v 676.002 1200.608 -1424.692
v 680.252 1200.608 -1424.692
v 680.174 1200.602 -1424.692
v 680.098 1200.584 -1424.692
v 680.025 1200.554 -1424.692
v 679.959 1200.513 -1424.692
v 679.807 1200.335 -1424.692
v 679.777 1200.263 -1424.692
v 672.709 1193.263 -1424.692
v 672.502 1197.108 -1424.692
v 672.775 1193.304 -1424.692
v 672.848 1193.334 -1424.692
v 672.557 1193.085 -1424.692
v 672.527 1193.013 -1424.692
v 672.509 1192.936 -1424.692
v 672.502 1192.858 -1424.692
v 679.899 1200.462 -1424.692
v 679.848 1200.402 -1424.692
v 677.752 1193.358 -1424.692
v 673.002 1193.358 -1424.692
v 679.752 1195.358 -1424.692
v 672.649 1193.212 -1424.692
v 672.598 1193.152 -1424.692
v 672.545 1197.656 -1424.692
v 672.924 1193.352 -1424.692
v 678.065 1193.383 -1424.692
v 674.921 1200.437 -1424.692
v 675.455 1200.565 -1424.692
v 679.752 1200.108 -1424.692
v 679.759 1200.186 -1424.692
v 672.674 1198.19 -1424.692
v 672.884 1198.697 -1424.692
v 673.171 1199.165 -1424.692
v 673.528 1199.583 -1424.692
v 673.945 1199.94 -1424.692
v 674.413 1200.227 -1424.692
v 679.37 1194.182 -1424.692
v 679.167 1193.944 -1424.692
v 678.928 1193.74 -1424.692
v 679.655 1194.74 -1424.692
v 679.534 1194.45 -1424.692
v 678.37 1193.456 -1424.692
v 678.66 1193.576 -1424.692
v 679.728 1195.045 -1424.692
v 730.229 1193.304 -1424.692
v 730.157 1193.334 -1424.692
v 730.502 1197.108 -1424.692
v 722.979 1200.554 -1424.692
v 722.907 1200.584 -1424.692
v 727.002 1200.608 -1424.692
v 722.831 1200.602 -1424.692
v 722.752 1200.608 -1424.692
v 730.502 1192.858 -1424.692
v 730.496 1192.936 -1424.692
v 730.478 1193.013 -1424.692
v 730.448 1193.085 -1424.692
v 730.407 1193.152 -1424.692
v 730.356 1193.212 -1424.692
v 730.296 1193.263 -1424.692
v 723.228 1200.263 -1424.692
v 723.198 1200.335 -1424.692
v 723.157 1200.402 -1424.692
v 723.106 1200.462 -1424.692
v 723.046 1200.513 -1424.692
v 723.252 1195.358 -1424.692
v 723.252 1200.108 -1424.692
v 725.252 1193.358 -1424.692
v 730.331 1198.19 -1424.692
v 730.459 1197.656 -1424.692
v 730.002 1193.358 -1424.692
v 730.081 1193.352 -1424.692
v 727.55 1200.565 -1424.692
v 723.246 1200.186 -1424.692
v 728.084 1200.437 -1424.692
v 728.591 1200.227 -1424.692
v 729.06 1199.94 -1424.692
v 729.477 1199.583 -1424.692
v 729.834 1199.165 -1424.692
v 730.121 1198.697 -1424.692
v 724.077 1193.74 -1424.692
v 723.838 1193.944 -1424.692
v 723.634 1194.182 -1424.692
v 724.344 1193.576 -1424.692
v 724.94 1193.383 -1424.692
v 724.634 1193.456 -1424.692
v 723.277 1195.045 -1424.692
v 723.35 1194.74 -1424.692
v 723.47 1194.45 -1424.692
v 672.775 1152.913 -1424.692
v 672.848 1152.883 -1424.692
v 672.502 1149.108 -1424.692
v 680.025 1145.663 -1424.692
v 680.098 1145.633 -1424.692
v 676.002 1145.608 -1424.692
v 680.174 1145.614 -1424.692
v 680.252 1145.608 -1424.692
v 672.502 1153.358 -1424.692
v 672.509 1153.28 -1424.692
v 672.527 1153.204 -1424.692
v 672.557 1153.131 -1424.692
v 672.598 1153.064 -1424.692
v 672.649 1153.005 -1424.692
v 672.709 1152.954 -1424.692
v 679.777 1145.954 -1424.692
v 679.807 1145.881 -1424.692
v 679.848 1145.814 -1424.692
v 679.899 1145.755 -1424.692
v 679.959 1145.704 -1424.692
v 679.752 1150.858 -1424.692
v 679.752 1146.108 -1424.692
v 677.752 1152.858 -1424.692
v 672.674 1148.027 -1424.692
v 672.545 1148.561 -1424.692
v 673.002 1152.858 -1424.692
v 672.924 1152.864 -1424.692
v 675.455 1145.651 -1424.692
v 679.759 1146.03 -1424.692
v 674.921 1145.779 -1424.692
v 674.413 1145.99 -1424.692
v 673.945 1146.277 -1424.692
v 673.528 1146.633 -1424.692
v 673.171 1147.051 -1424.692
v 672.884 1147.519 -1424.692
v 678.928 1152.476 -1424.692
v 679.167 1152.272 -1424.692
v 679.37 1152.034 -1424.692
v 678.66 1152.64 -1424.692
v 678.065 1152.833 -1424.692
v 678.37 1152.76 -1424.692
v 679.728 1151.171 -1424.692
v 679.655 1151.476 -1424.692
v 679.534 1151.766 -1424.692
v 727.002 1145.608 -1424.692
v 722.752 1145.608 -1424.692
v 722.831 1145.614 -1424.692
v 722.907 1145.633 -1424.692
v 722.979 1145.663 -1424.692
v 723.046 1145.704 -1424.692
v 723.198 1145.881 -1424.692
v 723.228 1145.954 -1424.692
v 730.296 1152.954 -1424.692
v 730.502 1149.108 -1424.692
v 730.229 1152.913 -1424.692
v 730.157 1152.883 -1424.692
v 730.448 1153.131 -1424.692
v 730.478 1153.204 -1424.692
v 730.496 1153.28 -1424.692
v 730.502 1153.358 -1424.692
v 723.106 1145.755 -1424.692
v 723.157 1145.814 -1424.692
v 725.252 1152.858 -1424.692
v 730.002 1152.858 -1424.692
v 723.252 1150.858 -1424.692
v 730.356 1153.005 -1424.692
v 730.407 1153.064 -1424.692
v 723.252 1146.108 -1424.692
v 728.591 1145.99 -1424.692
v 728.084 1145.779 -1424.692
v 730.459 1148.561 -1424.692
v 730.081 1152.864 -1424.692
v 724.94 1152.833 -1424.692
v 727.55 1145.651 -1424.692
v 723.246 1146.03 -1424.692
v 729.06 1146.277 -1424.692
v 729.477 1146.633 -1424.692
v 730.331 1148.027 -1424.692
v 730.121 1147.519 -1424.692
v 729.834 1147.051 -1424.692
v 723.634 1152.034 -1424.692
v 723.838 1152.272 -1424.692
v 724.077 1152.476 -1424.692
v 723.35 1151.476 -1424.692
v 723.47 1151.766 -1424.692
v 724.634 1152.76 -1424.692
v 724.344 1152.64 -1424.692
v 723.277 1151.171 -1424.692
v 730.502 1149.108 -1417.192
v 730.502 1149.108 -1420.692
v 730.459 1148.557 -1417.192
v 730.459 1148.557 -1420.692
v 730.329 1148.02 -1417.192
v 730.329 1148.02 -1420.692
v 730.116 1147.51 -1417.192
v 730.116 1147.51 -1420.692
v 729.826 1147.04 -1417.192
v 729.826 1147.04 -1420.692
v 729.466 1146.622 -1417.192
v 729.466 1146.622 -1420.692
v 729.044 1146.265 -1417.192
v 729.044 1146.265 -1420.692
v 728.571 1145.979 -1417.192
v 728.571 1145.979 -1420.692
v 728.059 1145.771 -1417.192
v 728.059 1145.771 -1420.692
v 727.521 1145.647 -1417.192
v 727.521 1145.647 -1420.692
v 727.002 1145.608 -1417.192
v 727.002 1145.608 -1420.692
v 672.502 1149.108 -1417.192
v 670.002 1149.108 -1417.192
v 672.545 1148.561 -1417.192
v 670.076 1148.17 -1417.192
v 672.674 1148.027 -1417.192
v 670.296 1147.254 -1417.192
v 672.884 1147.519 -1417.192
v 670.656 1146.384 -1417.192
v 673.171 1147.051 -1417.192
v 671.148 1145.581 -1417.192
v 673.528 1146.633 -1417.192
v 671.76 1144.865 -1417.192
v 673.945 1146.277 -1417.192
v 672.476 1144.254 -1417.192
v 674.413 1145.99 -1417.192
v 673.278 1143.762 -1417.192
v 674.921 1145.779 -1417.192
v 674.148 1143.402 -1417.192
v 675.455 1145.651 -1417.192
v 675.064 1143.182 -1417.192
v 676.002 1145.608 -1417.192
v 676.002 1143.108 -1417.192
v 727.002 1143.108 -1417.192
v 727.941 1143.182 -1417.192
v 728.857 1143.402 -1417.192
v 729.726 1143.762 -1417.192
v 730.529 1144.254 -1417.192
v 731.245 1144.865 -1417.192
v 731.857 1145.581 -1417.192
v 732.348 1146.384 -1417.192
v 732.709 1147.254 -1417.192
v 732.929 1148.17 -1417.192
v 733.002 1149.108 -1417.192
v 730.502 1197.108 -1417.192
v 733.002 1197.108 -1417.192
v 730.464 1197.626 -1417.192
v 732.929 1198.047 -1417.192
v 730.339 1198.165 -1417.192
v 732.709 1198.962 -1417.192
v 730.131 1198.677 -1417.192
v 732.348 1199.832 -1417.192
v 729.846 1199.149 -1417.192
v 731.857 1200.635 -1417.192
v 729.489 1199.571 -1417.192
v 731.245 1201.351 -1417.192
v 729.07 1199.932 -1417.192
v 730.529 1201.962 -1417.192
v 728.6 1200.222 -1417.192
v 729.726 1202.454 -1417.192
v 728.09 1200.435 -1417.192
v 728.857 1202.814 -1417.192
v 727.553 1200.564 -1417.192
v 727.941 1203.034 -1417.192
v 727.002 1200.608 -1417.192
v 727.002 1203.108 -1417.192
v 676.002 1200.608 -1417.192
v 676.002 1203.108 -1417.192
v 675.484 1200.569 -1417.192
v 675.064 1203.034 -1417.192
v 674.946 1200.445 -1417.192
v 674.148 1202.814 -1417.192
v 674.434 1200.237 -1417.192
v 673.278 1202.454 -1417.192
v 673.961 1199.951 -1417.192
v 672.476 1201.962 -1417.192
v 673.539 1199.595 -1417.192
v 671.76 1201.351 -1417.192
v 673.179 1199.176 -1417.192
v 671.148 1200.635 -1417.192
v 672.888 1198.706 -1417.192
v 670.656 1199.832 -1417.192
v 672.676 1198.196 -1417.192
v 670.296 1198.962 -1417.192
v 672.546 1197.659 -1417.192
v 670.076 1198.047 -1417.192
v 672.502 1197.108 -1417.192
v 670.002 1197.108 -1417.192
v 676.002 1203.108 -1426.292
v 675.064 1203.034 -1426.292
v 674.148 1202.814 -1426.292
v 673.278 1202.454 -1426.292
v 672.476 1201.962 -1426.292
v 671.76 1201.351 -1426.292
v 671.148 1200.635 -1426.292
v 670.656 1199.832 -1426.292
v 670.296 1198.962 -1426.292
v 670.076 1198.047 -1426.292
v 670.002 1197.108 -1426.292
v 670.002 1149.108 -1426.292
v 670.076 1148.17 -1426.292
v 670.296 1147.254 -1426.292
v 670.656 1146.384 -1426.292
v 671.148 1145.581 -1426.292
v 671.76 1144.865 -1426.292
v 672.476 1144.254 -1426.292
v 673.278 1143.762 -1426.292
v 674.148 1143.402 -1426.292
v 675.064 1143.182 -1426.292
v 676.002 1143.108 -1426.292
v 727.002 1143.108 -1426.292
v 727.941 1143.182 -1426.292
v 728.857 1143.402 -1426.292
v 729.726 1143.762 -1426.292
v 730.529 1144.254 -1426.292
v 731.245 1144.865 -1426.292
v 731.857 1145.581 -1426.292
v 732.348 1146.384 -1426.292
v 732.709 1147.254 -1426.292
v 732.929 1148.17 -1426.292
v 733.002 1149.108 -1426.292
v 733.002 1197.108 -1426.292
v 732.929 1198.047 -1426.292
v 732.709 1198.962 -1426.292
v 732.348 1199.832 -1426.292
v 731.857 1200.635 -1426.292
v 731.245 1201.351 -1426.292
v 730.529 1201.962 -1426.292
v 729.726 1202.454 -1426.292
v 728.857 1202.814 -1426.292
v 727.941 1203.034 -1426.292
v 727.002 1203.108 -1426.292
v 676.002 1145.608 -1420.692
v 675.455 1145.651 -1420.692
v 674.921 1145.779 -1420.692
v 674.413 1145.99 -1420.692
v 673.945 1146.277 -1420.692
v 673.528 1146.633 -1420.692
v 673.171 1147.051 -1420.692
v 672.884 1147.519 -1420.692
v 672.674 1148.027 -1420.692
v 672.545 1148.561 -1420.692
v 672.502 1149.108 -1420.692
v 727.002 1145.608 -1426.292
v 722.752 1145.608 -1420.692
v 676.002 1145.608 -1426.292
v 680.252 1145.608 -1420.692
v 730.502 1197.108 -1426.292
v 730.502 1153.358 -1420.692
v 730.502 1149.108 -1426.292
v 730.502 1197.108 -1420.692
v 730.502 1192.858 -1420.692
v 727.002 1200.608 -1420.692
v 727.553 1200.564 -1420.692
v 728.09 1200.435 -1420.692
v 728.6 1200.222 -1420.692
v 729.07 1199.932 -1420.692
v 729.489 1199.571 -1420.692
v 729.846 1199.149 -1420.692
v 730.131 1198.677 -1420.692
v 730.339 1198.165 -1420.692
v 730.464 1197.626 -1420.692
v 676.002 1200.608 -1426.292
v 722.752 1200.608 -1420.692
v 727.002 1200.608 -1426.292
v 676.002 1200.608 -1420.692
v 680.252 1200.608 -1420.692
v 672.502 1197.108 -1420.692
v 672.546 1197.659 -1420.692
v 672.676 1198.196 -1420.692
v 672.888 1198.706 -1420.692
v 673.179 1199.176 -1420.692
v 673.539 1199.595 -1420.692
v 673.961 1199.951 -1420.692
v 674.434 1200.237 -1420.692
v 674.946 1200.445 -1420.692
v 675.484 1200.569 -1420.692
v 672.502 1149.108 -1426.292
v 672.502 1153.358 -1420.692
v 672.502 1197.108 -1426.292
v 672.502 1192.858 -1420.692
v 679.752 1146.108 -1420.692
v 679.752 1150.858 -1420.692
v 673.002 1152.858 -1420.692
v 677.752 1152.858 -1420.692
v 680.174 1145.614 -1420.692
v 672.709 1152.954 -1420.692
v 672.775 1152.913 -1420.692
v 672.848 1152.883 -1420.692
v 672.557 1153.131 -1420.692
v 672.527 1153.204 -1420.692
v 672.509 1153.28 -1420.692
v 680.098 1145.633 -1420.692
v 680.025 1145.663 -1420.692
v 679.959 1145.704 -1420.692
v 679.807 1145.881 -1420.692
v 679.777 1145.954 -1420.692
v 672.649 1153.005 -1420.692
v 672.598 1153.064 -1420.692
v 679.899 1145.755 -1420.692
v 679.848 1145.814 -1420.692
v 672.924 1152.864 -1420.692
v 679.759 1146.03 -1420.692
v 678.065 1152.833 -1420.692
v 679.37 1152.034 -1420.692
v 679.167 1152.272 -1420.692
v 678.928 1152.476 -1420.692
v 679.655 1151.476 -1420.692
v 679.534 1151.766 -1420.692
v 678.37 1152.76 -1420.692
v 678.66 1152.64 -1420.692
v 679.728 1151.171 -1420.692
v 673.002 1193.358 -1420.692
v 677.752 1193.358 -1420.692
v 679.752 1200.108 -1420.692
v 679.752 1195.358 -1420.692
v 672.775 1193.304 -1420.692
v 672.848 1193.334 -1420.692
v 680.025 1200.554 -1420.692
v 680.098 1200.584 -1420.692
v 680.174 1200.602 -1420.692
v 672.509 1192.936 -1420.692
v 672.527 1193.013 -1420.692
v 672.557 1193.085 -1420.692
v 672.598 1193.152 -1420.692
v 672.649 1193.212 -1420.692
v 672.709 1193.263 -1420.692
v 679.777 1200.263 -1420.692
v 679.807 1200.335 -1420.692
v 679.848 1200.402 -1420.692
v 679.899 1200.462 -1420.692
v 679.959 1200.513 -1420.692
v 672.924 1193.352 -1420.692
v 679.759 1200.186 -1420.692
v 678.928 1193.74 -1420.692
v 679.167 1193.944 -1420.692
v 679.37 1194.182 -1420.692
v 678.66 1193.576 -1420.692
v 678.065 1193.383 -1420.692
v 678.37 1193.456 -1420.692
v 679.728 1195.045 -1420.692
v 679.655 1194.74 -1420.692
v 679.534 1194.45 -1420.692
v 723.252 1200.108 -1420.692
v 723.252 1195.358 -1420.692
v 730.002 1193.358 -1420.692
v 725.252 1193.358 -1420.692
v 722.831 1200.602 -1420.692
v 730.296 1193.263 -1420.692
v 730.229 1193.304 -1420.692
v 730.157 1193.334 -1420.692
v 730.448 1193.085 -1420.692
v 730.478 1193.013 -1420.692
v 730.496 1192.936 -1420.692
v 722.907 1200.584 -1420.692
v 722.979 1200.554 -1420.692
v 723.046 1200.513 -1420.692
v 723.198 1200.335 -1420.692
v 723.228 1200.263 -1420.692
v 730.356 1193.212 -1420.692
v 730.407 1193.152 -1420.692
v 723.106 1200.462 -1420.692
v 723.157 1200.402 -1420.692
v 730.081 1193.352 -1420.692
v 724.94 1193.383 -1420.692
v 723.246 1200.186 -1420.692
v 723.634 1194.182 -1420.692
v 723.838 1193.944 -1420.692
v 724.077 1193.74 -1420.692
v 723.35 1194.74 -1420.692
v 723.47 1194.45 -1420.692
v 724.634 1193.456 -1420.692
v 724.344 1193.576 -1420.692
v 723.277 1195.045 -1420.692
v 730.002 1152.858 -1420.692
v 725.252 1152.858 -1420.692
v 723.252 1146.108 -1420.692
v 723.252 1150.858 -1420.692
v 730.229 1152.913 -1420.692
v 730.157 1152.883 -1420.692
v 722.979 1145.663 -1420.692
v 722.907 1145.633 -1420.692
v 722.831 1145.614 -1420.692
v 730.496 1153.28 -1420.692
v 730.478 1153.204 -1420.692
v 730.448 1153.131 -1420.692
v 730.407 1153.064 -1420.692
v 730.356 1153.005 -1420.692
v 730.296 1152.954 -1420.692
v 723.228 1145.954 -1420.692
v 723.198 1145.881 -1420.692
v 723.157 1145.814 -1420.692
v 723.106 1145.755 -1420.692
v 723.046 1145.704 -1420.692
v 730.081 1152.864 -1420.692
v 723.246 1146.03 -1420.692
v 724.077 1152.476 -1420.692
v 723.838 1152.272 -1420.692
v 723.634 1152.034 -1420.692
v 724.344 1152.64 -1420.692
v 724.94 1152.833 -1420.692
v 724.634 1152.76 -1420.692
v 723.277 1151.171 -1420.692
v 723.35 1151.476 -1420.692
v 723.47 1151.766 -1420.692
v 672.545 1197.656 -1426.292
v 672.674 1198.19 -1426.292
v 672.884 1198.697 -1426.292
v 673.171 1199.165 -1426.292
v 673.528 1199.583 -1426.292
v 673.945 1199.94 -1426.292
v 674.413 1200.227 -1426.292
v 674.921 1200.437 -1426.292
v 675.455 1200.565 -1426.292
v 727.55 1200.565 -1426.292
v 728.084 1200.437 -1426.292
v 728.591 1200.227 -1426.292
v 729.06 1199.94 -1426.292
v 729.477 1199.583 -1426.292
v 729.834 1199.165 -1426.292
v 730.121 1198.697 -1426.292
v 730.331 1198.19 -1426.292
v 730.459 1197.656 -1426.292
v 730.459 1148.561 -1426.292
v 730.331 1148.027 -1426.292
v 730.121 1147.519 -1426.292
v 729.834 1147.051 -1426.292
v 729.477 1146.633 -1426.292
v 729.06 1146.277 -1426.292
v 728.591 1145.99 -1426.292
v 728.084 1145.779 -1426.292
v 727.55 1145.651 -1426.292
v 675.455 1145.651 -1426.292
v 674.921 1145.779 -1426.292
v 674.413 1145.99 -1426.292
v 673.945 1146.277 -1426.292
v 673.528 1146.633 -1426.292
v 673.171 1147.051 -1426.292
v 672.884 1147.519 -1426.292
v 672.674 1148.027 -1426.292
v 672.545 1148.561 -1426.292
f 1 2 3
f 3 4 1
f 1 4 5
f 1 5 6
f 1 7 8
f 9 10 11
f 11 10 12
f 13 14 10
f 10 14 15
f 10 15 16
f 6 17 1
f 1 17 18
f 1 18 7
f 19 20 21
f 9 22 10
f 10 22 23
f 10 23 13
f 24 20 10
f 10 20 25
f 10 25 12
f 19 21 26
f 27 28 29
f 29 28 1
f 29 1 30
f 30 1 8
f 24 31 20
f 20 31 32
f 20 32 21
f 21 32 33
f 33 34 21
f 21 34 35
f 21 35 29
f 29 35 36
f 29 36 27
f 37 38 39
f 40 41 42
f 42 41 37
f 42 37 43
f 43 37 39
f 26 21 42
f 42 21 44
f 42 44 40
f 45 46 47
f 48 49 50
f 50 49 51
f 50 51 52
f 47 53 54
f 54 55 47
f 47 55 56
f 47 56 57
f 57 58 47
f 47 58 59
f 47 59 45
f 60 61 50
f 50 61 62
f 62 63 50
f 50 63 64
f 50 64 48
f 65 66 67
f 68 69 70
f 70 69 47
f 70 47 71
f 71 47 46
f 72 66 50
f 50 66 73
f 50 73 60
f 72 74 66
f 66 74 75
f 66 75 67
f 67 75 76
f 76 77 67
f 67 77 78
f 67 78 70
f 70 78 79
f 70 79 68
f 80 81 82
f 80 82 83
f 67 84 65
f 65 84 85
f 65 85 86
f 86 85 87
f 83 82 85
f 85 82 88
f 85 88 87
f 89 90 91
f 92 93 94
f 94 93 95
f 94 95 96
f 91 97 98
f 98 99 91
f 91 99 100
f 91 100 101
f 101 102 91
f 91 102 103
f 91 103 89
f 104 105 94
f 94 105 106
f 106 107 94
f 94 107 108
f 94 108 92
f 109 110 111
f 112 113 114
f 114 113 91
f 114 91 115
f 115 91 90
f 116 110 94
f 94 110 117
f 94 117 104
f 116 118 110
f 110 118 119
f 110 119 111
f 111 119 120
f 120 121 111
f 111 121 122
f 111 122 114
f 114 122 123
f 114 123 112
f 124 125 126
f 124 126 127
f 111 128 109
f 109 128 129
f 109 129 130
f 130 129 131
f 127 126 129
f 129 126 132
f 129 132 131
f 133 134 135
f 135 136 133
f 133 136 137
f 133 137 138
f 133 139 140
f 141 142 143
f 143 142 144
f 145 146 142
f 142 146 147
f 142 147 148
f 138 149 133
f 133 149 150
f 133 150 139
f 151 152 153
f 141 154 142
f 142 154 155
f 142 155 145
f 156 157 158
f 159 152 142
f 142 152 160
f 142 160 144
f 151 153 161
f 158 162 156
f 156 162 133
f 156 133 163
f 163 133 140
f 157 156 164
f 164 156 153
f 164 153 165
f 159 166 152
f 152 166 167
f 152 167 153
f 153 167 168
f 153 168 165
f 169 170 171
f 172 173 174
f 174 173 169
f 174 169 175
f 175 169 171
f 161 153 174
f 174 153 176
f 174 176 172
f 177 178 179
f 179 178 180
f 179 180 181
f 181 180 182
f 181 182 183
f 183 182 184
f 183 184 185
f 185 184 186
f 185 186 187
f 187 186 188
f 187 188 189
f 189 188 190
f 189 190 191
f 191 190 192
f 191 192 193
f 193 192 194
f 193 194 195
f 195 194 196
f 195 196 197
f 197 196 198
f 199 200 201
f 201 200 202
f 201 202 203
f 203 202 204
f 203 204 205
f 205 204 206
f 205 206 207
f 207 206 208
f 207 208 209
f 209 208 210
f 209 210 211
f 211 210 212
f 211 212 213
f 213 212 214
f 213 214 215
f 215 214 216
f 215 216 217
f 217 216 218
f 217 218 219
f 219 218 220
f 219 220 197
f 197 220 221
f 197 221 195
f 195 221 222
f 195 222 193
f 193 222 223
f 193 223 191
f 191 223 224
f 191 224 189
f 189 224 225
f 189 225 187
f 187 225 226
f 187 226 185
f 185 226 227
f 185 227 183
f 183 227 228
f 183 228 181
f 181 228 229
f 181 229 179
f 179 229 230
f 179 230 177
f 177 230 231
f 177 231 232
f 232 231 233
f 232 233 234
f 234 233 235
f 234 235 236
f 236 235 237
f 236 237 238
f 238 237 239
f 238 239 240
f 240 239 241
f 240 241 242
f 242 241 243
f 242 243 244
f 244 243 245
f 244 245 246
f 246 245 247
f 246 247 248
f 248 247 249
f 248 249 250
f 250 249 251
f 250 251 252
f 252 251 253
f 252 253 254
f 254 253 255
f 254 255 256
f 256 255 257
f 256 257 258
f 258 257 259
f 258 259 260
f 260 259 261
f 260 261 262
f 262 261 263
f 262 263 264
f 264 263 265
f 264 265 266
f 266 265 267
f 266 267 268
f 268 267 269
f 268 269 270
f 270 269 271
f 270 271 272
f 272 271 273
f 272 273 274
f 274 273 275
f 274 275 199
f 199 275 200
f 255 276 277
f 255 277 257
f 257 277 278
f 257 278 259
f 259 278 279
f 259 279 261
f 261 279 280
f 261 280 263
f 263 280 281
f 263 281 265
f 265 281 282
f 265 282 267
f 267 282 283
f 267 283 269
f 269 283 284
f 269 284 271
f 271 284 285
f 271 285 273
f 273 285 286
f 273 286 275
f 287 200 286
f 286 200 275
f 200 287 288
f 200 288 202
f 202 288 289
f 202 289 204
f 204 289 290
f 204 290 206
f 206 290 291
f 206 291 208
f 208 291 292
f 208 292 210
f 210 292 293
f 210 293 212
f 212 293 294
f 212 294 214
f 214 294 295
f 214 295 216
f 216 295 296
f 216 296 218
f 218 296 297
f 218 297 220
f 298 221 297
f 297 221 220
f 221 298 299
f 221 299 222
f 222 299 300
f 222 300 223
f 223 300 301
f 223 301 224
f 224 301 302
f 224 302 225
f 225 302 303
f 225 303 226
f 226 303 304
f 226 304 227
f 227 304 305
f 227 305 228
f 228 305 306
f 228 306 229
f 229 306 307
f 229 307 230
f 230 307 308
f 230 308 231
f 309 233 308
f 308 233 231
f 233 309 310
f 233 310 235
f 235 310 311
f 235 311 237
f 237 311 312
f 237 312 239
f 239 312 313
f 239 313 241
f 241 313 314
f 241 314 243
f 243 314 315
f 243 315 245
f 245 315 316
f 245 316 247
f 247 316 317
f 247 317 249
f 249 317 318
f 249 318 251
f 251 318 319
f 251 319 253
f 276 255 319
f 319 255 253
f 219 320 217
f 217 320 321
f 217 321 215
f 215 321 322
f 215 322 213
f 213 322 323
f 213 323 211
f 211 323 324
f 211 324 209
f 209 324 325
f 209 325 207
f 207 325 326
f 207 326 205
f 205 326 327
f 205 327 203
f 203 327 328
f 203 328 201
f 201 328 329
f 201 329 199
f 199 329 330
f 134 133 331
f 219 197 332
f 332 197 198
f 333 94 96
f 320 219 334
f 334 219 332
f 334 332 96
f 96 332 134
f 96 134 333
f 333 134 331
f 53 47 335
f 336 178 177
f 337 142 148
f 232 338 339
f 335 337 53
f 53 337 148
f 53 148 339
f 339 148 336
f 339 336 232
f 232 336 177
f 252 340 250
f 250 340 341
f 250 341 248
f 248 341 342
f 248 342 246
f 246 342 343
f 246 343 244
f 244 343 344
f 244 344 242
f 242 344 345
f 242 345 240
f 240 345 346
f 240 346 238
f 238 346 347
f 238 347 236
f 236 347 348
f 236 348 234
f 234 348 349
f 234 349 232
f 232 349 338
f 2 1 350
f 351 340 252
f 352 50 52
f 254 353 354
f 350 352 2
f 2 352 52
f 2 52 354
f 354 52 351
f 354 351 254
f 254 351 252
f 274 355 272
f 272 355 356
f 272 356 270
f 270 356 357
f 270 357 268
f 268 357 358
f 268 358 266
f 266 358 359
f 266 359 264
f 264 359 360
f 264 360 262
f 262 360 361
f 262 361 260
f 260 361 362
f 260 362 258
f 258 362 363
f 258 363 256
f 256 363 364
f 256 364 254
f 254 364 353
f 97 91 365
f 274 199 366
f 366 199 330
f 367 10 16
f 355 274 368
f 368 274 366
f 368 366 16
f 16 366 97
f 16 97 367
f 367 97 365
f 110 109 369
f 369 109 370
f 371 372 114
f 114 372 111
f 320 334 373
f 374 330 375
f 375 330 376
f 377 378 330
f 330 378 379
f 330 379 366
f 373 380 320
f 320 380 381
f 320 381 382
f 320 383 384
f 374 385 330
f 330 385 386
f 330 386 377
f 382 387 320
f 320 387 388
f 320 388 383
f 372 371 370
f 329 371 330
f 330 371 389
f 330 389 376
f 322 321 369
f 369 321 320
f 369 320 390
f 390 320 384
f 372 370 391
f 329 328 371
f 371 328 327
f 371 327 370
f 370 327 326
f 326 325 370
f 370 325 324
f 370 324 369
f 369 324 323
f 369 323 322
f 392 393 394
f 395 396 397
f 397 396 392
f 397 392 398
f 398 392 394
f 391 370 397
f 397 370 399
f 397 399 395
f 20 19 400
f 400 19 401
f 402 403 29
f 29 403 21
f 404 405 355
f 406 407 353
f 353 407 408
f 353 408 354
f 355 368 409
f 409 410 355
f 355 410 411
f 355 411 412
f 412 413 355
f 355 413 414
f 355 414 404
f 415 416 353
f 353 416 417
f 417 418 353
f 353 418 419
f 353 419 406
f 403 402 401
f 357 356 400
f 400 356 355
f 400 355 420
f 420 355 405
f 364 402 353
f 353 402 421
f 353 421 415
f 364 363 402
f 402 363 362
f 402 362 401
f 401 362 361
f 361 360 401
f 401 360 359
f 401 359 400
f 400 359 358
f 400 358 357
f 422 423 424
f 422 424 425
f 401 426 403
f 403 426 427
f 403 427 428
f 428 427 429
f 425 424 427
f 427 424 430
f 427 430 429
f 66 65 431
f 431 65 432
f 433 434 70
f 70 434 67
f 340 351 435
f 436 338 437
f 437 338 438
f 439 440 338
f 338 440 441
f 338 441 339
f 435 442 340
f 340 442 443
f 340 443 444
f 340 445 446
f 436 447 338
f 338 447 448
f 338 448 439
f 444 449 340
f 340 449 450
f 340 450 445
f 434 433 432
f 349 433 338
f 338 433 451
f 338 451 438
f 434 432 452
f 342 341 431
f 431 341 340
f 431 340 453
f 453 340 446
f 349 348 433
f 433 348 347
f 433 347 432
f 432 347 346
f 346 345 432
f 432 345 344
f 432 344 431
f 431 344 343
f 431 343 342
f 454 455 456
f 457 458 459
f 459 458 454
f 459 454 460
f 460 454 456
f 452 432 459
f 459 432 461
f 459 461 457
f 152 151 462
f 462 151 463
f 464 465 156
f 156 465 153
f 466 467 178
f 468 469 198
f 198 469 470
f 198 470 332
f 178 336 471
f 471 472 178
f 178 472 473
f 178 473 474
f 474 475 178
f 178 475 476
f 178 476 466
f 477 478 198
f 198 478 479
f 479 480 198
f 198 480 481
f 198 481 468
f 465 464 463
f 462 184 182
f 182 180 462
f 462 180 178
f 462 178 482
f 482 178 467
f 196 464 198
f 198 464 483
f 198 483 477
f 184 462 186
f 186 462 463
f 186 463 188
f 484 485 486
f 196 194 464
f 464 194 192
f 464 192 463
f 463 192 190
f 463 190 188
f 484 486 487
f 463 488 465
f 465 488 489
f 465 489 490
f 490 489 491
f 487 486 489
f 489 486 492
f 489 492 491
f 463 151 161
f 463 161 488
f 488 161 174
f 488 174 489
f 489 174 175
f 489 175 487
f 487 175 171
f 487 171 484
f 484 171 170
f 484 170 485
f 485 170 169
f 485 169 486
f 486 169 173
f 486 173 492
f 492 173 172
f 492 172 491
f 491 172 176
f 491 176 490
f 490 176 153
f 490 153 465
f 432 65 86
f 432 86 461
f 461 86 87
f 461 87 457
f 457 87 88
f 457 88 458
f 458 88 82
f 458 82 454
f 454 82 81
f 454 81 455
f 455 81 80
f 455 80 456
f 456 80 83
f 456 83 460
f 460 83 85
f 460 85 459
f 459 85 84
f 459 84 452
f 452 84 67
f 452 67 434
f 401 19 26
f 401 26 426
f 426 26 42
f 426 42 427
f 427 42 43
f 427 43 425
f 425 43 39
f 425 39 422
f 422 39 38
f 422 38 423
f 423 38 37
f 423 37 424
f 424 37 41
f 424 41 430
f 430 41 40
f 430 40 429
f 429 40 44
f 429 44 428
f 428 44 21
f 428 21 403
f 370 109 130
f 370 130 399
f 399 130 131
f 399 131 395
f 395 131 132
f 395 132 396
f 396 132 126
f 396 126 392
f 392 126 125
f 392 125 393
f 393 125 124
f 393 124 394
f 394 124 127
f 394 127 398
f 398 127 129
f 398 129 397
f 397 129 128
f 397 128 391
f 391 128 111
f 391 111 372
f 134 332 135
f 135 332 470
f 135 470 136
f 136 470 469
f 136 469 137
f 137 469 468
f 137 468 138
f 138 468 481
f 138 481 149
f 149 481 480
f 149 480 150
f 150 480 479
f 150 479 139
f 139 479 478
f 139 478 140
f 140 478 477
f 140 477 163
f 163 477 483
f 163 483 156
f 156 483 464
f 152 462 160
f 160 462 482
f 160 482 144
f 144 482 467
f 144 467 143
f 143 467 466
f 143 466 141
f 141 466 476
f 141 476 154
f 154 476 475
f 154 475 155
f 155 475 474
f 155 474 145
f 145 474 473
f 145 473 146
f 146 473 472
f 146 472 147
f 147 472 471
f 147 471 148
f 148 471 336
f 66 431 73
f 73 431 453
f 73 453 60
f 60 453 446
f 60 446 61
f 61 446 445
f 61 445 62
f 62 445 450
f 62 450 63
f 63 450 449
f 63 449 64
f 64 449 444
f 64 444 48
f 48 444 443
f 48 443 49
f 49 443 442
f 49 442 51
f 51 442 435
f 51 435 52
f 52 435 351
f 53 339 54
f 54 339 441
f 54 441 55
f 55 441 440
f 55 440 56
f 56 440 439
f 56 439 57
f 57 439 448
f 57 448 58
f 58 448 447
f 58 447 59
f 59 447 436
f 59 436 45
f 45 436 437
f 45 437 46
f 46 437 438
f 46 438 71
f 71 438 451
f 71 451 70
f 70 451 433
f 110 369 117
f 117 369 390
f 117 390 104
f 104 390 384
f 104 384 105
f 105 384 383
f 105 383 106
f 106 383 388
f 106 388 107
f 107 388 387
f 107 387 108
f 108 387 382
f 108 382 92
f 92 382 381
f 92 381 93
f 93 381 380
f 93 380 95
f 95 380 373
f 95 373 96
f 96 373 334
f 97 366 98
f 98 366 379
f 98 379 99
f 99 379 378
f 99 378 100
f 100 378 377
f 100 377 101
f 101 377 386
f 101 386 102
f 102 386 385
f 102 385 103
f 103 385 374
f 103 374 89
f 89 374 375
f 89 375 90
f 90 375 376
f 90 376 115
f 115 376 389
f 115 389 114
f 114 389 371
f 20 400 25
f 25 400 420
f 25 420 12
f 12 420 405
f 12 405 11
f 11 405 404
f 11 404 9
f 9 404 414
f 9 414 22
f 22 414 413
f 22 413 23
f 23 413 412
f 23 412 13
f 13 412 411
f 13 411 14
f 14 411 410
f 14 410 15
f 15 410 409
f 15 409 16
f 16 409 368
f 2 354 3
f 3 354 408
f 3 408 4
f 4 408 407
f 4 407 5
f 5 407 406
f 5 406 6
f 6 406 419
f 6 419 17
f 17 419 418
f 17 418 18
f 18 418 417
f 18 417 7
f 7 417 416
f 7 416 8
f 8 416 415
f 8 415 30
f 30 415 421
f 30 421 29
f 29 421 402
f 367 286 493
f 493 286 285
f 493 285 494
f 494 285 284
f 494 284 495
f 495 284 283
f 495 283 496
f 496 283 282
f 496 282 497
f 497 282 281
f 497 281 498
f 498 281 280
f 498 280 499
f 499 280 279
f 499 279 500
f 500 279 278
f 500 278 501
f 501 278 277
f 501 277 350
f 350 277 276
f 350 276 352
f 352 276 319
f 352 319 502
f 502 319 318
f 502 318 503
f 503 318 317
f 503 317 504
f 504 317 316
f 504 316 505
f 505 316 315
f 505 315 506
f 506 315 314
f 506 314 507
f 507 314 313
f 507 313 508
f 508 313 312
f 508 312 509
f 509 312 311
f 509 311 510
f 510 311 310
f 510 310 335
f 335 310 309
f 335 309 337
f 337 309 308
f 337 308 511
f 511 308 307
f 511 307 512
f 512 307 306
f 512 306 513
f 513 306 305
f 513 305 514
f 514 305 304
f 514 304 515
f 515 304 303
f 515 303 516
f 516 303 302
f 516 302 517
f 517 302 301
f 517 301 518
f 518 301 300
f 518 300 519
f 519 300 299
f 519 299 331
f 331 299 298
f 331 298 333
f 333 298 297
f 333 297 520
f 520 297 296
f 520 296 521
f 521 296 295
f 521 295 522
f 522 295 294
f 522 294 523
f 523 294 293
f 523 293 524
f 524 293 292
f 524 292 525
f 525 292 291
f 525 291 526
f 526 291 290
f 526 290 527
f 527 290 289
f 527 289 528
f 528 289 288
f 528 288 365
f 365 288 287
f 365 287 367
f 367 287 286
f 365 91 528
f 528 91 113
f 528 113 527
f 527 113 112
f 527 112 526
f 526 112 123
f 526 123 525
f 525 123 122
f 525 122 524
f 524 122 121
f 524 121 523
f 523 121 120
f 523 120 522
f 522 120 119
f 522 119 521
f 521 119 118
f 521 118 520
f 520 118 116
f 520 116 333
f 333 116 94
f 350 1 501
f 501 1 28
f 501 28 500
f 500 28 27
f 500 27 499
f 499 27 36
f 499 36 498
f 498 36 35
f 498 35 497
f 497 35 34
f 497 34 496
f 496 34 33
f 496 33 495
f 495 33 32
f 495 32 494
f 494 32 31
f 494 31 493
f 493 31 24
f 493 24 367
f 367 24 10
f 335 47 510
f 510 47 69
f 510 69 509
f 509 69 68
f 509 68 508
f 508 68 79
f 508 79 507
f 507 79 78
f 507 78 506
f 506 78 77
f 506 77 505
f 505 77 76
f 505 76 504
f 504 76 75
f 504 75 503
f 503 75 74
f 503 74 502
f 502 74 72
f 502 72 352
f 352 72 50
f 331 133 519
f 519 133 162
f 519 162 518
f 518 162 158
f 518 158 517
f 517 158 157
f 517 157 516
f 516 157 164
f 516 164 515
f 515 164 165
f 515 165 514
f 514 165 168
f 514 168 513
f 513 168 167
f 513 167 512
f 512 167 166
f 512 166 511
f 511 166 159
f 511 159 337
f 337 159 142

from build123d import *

# Parameters (mm, degrees)
BOSS_EXTRU_1_DEPTH = 7.5
ESQUISSE2_W        = 7.25
ESQUISSE2_H        = 7.25
BOSS_EXTRU_2_DEPTH = 4
CONG_1_R           = 2
CONG_2_R           = 0.5
BOSS_EXTRU_3_START = -1.6
BOSS_EXTRU_3_DEPTH = 1.6


with BuildPart() as part:
    # Esquisse1 → Boss.-Extru.1 (new body)
    with BuildSketch(Plane.XY.offset(-1424.691834437)):
        with BuildLine():
            Line((670.002412047, 1197.108127391), (670.002412047, 1149.108126022))
            ThreePointArc((670.002412047, 1149.108126022), (671.759771358, 1144.86548622), (676.002410874, 1143.108126218))
            Line((676.002410874, 1143.108126218), (727.002412047, 1143.108126218))
            ThreePointArc((727.002412047, 1143.108126218), (731.245051976, 1144.865485459), (733.002412047, 1149.108125045))
            Line((733.002412047, 1149.108125045), (733.002412047, 1197.108126218))
            ThreePointArc((733.002412047, 1197.108126218), (731.245052806, 1201.350766146), (727.00241322, 1203.108126218))
            Line((727.00241322, 1203.108126218), (676.00241121, 1203.108126218))
            ThreePointArc((676.00241121, 1203.108126218), (671.759771822, 1201.35076668), (670.002412047, 1197.108127391))
        make_face()
        with BuildLine():
            Line((676.002411852, 1145.608126218), (727.002412047, 1145.608126218))
            ThreePointArc((727.002412047, 1145.608126218), (729.477285369, 1146.633252758), (730.502412047, 1149.108126022))
            Line((730.502412047, 1149.108126022), (730.502412047, 1197.108126218))
            ThreePointArc((730.502412047, 1197.108126218), (729.477285507, 1199.582999539), (727.002412243, 1200.608126218))
            Line((727.002412243, 1200.608126218), (676.002412047, 1200.608126218))
            ThreePointArc((676.002412047, 1200.608126218), (673.527538726, 1199.582999677), (672.502412047, 1197.108126413))
            Line((672.502412047, 1197.108126413), (672.502412047, 1149.108126022))
            ThreePointArc((672.502412047, 1149.108126022), (673.527538657, 1146.633252827), (676.002411852, 1145.608126218))
        make_face(mode=Mode.SUBTRACT)
    extrude(amount=BOSS_EXTRU_1_DEPTH)

    # Esquisse2 → Boss.-Extru.2 (add)
    with BuildSketch(Plane(origin=(0, 0, -1424.691834437), x_dir=(1, 0, 0), z_dir=(0, 0, -1))):
        with Locations((676.127412047, -1149.233126218)):
            Rectangle(ESQUISSE2_W, ESQUISSE2_H)
        with Locations((726.877412243, -1149.233126218)):
            Rectangle(ESQUISSE2_W, ESQUISSE2_H)
        with Locations((726.877412243, -1196.983126022)):
            Rectangle(ESQUISSE2_W, ESQUISSE2_H)
        with Locations((676.127412047, -1196.983126022)):
            Rectangle(ESQUISSE2_W, ESQUISSE2_H)
    extrude(amount=-BOSS_EXTRU_2_DEPTH)

    # Congé1
    cong_1_edges = [part.edges().sort_by_distance(p)[0] for p in [
        (723.252412243, 1152.858126218, -1422.691834437),
        (723.252412243, 1193.358126022, -1422.691834437),
        (679.752412047, 1193.358126022, -1422.691834437),
        (679.752412047, 1152.858126218, -1422.691834437),
    ]]
    fillet(cong_1_edges, radius=CONG_1_R)

    # Congé2
    cong_2_edges = [part.edges().sort_by_distance(p)[0] for p in [
        (723.252412243, 1145.608126218, -1422.691834437),
        (730.502412243, 1152.858126218, -1422.691834437),
        (723.252412243, 1200.608126022, -1422.691834437),
        (730.502412243, 1193.358126022, -1422.691834437),
        (679.752412047, 1145.608126218, -1422.691834437),
        (672.502412047, 1152.858126218, -1422.691834437),
        (672.502412047, 1193.358126022, -1422.691834437),
        (679.752412047, 1200.608126022, -1422.691834437),
    ]]
    fillet(cong_2_edges, radius=CONG_2_R)

    # Esquisse1<2> → Boss.-Extru.3 (add)
    with BuildSketch(Plane.XY.offset(-1424.691834437).offset(BOSS_EXTRU_3_START)):
        with BuildLine():
            Line((670.002412047, 1197.108127391), (670.002412047, 1149.108126022))
            ThreePointArc((670.002412047, 1149.108126022), (671.759771358, 1144.86548622), (676.002410874, 1143.108126218))
            Line((676.002410874, 1143.108126218), (727.002412047, 1143.108126218))
            ThreePointArc((727.002412047, 1143.108126218), (731.245051976, 1144.865485459), (733.002412047, 1149.108125045))
            Line((733.002412047, 1149.108125045), (733.002412047, 1197.108126218))
            ThreePointArc((733.002412047, 1197.108126218), (731.245052806, 1201.350766146), (727.00241322, 1203.108126218))
            Line((727.00241322, 1203.108126218), (676.00241121, 1203.108126218))
            ThreePointArc((676.00241121, 1203.108126218), (671.759771822, 1201.35076668), (670.002412047, 1197.108127391))
        make_face()
        with BuildLine():
            Line((676.002411852, 1145.608126218), (727.002412047, 1145.608126218))
            ThreePointArc((727.002412047, 1145.608126218), (729.477285369, 1146.633252758), (730.502412047, 1149.108126022))
            Line((730.502412047, 1149.108126022), (730.502412047, 1197.108126218))
            ThreePointArc((730.502412047, 1197.108126218), (729.477285507, 1199.582999539), (727.002412243, 1200.608126218))
            Line((727.002412243, 1200.608126218), (676.002412047, 1200.608126218))
            ThreePointArc((676.002412047, 1200.608126218), (673.527538726, 1199.582999677), (672.502412047, 1197.108126413))
            Line((672.502412047, 1197.108126413), (672.502412047, 1149.108126022))
            ThreePointArc((672.502412047, 1149.108126022), (673.527538657, 1146.633252827), (676.002411852, 1145.608126218))
        make_face(mode=Mode.SUBTRACT)
    extrude(amount=BOSS_EXTRU_3_DEPTH)


solid = part.part
